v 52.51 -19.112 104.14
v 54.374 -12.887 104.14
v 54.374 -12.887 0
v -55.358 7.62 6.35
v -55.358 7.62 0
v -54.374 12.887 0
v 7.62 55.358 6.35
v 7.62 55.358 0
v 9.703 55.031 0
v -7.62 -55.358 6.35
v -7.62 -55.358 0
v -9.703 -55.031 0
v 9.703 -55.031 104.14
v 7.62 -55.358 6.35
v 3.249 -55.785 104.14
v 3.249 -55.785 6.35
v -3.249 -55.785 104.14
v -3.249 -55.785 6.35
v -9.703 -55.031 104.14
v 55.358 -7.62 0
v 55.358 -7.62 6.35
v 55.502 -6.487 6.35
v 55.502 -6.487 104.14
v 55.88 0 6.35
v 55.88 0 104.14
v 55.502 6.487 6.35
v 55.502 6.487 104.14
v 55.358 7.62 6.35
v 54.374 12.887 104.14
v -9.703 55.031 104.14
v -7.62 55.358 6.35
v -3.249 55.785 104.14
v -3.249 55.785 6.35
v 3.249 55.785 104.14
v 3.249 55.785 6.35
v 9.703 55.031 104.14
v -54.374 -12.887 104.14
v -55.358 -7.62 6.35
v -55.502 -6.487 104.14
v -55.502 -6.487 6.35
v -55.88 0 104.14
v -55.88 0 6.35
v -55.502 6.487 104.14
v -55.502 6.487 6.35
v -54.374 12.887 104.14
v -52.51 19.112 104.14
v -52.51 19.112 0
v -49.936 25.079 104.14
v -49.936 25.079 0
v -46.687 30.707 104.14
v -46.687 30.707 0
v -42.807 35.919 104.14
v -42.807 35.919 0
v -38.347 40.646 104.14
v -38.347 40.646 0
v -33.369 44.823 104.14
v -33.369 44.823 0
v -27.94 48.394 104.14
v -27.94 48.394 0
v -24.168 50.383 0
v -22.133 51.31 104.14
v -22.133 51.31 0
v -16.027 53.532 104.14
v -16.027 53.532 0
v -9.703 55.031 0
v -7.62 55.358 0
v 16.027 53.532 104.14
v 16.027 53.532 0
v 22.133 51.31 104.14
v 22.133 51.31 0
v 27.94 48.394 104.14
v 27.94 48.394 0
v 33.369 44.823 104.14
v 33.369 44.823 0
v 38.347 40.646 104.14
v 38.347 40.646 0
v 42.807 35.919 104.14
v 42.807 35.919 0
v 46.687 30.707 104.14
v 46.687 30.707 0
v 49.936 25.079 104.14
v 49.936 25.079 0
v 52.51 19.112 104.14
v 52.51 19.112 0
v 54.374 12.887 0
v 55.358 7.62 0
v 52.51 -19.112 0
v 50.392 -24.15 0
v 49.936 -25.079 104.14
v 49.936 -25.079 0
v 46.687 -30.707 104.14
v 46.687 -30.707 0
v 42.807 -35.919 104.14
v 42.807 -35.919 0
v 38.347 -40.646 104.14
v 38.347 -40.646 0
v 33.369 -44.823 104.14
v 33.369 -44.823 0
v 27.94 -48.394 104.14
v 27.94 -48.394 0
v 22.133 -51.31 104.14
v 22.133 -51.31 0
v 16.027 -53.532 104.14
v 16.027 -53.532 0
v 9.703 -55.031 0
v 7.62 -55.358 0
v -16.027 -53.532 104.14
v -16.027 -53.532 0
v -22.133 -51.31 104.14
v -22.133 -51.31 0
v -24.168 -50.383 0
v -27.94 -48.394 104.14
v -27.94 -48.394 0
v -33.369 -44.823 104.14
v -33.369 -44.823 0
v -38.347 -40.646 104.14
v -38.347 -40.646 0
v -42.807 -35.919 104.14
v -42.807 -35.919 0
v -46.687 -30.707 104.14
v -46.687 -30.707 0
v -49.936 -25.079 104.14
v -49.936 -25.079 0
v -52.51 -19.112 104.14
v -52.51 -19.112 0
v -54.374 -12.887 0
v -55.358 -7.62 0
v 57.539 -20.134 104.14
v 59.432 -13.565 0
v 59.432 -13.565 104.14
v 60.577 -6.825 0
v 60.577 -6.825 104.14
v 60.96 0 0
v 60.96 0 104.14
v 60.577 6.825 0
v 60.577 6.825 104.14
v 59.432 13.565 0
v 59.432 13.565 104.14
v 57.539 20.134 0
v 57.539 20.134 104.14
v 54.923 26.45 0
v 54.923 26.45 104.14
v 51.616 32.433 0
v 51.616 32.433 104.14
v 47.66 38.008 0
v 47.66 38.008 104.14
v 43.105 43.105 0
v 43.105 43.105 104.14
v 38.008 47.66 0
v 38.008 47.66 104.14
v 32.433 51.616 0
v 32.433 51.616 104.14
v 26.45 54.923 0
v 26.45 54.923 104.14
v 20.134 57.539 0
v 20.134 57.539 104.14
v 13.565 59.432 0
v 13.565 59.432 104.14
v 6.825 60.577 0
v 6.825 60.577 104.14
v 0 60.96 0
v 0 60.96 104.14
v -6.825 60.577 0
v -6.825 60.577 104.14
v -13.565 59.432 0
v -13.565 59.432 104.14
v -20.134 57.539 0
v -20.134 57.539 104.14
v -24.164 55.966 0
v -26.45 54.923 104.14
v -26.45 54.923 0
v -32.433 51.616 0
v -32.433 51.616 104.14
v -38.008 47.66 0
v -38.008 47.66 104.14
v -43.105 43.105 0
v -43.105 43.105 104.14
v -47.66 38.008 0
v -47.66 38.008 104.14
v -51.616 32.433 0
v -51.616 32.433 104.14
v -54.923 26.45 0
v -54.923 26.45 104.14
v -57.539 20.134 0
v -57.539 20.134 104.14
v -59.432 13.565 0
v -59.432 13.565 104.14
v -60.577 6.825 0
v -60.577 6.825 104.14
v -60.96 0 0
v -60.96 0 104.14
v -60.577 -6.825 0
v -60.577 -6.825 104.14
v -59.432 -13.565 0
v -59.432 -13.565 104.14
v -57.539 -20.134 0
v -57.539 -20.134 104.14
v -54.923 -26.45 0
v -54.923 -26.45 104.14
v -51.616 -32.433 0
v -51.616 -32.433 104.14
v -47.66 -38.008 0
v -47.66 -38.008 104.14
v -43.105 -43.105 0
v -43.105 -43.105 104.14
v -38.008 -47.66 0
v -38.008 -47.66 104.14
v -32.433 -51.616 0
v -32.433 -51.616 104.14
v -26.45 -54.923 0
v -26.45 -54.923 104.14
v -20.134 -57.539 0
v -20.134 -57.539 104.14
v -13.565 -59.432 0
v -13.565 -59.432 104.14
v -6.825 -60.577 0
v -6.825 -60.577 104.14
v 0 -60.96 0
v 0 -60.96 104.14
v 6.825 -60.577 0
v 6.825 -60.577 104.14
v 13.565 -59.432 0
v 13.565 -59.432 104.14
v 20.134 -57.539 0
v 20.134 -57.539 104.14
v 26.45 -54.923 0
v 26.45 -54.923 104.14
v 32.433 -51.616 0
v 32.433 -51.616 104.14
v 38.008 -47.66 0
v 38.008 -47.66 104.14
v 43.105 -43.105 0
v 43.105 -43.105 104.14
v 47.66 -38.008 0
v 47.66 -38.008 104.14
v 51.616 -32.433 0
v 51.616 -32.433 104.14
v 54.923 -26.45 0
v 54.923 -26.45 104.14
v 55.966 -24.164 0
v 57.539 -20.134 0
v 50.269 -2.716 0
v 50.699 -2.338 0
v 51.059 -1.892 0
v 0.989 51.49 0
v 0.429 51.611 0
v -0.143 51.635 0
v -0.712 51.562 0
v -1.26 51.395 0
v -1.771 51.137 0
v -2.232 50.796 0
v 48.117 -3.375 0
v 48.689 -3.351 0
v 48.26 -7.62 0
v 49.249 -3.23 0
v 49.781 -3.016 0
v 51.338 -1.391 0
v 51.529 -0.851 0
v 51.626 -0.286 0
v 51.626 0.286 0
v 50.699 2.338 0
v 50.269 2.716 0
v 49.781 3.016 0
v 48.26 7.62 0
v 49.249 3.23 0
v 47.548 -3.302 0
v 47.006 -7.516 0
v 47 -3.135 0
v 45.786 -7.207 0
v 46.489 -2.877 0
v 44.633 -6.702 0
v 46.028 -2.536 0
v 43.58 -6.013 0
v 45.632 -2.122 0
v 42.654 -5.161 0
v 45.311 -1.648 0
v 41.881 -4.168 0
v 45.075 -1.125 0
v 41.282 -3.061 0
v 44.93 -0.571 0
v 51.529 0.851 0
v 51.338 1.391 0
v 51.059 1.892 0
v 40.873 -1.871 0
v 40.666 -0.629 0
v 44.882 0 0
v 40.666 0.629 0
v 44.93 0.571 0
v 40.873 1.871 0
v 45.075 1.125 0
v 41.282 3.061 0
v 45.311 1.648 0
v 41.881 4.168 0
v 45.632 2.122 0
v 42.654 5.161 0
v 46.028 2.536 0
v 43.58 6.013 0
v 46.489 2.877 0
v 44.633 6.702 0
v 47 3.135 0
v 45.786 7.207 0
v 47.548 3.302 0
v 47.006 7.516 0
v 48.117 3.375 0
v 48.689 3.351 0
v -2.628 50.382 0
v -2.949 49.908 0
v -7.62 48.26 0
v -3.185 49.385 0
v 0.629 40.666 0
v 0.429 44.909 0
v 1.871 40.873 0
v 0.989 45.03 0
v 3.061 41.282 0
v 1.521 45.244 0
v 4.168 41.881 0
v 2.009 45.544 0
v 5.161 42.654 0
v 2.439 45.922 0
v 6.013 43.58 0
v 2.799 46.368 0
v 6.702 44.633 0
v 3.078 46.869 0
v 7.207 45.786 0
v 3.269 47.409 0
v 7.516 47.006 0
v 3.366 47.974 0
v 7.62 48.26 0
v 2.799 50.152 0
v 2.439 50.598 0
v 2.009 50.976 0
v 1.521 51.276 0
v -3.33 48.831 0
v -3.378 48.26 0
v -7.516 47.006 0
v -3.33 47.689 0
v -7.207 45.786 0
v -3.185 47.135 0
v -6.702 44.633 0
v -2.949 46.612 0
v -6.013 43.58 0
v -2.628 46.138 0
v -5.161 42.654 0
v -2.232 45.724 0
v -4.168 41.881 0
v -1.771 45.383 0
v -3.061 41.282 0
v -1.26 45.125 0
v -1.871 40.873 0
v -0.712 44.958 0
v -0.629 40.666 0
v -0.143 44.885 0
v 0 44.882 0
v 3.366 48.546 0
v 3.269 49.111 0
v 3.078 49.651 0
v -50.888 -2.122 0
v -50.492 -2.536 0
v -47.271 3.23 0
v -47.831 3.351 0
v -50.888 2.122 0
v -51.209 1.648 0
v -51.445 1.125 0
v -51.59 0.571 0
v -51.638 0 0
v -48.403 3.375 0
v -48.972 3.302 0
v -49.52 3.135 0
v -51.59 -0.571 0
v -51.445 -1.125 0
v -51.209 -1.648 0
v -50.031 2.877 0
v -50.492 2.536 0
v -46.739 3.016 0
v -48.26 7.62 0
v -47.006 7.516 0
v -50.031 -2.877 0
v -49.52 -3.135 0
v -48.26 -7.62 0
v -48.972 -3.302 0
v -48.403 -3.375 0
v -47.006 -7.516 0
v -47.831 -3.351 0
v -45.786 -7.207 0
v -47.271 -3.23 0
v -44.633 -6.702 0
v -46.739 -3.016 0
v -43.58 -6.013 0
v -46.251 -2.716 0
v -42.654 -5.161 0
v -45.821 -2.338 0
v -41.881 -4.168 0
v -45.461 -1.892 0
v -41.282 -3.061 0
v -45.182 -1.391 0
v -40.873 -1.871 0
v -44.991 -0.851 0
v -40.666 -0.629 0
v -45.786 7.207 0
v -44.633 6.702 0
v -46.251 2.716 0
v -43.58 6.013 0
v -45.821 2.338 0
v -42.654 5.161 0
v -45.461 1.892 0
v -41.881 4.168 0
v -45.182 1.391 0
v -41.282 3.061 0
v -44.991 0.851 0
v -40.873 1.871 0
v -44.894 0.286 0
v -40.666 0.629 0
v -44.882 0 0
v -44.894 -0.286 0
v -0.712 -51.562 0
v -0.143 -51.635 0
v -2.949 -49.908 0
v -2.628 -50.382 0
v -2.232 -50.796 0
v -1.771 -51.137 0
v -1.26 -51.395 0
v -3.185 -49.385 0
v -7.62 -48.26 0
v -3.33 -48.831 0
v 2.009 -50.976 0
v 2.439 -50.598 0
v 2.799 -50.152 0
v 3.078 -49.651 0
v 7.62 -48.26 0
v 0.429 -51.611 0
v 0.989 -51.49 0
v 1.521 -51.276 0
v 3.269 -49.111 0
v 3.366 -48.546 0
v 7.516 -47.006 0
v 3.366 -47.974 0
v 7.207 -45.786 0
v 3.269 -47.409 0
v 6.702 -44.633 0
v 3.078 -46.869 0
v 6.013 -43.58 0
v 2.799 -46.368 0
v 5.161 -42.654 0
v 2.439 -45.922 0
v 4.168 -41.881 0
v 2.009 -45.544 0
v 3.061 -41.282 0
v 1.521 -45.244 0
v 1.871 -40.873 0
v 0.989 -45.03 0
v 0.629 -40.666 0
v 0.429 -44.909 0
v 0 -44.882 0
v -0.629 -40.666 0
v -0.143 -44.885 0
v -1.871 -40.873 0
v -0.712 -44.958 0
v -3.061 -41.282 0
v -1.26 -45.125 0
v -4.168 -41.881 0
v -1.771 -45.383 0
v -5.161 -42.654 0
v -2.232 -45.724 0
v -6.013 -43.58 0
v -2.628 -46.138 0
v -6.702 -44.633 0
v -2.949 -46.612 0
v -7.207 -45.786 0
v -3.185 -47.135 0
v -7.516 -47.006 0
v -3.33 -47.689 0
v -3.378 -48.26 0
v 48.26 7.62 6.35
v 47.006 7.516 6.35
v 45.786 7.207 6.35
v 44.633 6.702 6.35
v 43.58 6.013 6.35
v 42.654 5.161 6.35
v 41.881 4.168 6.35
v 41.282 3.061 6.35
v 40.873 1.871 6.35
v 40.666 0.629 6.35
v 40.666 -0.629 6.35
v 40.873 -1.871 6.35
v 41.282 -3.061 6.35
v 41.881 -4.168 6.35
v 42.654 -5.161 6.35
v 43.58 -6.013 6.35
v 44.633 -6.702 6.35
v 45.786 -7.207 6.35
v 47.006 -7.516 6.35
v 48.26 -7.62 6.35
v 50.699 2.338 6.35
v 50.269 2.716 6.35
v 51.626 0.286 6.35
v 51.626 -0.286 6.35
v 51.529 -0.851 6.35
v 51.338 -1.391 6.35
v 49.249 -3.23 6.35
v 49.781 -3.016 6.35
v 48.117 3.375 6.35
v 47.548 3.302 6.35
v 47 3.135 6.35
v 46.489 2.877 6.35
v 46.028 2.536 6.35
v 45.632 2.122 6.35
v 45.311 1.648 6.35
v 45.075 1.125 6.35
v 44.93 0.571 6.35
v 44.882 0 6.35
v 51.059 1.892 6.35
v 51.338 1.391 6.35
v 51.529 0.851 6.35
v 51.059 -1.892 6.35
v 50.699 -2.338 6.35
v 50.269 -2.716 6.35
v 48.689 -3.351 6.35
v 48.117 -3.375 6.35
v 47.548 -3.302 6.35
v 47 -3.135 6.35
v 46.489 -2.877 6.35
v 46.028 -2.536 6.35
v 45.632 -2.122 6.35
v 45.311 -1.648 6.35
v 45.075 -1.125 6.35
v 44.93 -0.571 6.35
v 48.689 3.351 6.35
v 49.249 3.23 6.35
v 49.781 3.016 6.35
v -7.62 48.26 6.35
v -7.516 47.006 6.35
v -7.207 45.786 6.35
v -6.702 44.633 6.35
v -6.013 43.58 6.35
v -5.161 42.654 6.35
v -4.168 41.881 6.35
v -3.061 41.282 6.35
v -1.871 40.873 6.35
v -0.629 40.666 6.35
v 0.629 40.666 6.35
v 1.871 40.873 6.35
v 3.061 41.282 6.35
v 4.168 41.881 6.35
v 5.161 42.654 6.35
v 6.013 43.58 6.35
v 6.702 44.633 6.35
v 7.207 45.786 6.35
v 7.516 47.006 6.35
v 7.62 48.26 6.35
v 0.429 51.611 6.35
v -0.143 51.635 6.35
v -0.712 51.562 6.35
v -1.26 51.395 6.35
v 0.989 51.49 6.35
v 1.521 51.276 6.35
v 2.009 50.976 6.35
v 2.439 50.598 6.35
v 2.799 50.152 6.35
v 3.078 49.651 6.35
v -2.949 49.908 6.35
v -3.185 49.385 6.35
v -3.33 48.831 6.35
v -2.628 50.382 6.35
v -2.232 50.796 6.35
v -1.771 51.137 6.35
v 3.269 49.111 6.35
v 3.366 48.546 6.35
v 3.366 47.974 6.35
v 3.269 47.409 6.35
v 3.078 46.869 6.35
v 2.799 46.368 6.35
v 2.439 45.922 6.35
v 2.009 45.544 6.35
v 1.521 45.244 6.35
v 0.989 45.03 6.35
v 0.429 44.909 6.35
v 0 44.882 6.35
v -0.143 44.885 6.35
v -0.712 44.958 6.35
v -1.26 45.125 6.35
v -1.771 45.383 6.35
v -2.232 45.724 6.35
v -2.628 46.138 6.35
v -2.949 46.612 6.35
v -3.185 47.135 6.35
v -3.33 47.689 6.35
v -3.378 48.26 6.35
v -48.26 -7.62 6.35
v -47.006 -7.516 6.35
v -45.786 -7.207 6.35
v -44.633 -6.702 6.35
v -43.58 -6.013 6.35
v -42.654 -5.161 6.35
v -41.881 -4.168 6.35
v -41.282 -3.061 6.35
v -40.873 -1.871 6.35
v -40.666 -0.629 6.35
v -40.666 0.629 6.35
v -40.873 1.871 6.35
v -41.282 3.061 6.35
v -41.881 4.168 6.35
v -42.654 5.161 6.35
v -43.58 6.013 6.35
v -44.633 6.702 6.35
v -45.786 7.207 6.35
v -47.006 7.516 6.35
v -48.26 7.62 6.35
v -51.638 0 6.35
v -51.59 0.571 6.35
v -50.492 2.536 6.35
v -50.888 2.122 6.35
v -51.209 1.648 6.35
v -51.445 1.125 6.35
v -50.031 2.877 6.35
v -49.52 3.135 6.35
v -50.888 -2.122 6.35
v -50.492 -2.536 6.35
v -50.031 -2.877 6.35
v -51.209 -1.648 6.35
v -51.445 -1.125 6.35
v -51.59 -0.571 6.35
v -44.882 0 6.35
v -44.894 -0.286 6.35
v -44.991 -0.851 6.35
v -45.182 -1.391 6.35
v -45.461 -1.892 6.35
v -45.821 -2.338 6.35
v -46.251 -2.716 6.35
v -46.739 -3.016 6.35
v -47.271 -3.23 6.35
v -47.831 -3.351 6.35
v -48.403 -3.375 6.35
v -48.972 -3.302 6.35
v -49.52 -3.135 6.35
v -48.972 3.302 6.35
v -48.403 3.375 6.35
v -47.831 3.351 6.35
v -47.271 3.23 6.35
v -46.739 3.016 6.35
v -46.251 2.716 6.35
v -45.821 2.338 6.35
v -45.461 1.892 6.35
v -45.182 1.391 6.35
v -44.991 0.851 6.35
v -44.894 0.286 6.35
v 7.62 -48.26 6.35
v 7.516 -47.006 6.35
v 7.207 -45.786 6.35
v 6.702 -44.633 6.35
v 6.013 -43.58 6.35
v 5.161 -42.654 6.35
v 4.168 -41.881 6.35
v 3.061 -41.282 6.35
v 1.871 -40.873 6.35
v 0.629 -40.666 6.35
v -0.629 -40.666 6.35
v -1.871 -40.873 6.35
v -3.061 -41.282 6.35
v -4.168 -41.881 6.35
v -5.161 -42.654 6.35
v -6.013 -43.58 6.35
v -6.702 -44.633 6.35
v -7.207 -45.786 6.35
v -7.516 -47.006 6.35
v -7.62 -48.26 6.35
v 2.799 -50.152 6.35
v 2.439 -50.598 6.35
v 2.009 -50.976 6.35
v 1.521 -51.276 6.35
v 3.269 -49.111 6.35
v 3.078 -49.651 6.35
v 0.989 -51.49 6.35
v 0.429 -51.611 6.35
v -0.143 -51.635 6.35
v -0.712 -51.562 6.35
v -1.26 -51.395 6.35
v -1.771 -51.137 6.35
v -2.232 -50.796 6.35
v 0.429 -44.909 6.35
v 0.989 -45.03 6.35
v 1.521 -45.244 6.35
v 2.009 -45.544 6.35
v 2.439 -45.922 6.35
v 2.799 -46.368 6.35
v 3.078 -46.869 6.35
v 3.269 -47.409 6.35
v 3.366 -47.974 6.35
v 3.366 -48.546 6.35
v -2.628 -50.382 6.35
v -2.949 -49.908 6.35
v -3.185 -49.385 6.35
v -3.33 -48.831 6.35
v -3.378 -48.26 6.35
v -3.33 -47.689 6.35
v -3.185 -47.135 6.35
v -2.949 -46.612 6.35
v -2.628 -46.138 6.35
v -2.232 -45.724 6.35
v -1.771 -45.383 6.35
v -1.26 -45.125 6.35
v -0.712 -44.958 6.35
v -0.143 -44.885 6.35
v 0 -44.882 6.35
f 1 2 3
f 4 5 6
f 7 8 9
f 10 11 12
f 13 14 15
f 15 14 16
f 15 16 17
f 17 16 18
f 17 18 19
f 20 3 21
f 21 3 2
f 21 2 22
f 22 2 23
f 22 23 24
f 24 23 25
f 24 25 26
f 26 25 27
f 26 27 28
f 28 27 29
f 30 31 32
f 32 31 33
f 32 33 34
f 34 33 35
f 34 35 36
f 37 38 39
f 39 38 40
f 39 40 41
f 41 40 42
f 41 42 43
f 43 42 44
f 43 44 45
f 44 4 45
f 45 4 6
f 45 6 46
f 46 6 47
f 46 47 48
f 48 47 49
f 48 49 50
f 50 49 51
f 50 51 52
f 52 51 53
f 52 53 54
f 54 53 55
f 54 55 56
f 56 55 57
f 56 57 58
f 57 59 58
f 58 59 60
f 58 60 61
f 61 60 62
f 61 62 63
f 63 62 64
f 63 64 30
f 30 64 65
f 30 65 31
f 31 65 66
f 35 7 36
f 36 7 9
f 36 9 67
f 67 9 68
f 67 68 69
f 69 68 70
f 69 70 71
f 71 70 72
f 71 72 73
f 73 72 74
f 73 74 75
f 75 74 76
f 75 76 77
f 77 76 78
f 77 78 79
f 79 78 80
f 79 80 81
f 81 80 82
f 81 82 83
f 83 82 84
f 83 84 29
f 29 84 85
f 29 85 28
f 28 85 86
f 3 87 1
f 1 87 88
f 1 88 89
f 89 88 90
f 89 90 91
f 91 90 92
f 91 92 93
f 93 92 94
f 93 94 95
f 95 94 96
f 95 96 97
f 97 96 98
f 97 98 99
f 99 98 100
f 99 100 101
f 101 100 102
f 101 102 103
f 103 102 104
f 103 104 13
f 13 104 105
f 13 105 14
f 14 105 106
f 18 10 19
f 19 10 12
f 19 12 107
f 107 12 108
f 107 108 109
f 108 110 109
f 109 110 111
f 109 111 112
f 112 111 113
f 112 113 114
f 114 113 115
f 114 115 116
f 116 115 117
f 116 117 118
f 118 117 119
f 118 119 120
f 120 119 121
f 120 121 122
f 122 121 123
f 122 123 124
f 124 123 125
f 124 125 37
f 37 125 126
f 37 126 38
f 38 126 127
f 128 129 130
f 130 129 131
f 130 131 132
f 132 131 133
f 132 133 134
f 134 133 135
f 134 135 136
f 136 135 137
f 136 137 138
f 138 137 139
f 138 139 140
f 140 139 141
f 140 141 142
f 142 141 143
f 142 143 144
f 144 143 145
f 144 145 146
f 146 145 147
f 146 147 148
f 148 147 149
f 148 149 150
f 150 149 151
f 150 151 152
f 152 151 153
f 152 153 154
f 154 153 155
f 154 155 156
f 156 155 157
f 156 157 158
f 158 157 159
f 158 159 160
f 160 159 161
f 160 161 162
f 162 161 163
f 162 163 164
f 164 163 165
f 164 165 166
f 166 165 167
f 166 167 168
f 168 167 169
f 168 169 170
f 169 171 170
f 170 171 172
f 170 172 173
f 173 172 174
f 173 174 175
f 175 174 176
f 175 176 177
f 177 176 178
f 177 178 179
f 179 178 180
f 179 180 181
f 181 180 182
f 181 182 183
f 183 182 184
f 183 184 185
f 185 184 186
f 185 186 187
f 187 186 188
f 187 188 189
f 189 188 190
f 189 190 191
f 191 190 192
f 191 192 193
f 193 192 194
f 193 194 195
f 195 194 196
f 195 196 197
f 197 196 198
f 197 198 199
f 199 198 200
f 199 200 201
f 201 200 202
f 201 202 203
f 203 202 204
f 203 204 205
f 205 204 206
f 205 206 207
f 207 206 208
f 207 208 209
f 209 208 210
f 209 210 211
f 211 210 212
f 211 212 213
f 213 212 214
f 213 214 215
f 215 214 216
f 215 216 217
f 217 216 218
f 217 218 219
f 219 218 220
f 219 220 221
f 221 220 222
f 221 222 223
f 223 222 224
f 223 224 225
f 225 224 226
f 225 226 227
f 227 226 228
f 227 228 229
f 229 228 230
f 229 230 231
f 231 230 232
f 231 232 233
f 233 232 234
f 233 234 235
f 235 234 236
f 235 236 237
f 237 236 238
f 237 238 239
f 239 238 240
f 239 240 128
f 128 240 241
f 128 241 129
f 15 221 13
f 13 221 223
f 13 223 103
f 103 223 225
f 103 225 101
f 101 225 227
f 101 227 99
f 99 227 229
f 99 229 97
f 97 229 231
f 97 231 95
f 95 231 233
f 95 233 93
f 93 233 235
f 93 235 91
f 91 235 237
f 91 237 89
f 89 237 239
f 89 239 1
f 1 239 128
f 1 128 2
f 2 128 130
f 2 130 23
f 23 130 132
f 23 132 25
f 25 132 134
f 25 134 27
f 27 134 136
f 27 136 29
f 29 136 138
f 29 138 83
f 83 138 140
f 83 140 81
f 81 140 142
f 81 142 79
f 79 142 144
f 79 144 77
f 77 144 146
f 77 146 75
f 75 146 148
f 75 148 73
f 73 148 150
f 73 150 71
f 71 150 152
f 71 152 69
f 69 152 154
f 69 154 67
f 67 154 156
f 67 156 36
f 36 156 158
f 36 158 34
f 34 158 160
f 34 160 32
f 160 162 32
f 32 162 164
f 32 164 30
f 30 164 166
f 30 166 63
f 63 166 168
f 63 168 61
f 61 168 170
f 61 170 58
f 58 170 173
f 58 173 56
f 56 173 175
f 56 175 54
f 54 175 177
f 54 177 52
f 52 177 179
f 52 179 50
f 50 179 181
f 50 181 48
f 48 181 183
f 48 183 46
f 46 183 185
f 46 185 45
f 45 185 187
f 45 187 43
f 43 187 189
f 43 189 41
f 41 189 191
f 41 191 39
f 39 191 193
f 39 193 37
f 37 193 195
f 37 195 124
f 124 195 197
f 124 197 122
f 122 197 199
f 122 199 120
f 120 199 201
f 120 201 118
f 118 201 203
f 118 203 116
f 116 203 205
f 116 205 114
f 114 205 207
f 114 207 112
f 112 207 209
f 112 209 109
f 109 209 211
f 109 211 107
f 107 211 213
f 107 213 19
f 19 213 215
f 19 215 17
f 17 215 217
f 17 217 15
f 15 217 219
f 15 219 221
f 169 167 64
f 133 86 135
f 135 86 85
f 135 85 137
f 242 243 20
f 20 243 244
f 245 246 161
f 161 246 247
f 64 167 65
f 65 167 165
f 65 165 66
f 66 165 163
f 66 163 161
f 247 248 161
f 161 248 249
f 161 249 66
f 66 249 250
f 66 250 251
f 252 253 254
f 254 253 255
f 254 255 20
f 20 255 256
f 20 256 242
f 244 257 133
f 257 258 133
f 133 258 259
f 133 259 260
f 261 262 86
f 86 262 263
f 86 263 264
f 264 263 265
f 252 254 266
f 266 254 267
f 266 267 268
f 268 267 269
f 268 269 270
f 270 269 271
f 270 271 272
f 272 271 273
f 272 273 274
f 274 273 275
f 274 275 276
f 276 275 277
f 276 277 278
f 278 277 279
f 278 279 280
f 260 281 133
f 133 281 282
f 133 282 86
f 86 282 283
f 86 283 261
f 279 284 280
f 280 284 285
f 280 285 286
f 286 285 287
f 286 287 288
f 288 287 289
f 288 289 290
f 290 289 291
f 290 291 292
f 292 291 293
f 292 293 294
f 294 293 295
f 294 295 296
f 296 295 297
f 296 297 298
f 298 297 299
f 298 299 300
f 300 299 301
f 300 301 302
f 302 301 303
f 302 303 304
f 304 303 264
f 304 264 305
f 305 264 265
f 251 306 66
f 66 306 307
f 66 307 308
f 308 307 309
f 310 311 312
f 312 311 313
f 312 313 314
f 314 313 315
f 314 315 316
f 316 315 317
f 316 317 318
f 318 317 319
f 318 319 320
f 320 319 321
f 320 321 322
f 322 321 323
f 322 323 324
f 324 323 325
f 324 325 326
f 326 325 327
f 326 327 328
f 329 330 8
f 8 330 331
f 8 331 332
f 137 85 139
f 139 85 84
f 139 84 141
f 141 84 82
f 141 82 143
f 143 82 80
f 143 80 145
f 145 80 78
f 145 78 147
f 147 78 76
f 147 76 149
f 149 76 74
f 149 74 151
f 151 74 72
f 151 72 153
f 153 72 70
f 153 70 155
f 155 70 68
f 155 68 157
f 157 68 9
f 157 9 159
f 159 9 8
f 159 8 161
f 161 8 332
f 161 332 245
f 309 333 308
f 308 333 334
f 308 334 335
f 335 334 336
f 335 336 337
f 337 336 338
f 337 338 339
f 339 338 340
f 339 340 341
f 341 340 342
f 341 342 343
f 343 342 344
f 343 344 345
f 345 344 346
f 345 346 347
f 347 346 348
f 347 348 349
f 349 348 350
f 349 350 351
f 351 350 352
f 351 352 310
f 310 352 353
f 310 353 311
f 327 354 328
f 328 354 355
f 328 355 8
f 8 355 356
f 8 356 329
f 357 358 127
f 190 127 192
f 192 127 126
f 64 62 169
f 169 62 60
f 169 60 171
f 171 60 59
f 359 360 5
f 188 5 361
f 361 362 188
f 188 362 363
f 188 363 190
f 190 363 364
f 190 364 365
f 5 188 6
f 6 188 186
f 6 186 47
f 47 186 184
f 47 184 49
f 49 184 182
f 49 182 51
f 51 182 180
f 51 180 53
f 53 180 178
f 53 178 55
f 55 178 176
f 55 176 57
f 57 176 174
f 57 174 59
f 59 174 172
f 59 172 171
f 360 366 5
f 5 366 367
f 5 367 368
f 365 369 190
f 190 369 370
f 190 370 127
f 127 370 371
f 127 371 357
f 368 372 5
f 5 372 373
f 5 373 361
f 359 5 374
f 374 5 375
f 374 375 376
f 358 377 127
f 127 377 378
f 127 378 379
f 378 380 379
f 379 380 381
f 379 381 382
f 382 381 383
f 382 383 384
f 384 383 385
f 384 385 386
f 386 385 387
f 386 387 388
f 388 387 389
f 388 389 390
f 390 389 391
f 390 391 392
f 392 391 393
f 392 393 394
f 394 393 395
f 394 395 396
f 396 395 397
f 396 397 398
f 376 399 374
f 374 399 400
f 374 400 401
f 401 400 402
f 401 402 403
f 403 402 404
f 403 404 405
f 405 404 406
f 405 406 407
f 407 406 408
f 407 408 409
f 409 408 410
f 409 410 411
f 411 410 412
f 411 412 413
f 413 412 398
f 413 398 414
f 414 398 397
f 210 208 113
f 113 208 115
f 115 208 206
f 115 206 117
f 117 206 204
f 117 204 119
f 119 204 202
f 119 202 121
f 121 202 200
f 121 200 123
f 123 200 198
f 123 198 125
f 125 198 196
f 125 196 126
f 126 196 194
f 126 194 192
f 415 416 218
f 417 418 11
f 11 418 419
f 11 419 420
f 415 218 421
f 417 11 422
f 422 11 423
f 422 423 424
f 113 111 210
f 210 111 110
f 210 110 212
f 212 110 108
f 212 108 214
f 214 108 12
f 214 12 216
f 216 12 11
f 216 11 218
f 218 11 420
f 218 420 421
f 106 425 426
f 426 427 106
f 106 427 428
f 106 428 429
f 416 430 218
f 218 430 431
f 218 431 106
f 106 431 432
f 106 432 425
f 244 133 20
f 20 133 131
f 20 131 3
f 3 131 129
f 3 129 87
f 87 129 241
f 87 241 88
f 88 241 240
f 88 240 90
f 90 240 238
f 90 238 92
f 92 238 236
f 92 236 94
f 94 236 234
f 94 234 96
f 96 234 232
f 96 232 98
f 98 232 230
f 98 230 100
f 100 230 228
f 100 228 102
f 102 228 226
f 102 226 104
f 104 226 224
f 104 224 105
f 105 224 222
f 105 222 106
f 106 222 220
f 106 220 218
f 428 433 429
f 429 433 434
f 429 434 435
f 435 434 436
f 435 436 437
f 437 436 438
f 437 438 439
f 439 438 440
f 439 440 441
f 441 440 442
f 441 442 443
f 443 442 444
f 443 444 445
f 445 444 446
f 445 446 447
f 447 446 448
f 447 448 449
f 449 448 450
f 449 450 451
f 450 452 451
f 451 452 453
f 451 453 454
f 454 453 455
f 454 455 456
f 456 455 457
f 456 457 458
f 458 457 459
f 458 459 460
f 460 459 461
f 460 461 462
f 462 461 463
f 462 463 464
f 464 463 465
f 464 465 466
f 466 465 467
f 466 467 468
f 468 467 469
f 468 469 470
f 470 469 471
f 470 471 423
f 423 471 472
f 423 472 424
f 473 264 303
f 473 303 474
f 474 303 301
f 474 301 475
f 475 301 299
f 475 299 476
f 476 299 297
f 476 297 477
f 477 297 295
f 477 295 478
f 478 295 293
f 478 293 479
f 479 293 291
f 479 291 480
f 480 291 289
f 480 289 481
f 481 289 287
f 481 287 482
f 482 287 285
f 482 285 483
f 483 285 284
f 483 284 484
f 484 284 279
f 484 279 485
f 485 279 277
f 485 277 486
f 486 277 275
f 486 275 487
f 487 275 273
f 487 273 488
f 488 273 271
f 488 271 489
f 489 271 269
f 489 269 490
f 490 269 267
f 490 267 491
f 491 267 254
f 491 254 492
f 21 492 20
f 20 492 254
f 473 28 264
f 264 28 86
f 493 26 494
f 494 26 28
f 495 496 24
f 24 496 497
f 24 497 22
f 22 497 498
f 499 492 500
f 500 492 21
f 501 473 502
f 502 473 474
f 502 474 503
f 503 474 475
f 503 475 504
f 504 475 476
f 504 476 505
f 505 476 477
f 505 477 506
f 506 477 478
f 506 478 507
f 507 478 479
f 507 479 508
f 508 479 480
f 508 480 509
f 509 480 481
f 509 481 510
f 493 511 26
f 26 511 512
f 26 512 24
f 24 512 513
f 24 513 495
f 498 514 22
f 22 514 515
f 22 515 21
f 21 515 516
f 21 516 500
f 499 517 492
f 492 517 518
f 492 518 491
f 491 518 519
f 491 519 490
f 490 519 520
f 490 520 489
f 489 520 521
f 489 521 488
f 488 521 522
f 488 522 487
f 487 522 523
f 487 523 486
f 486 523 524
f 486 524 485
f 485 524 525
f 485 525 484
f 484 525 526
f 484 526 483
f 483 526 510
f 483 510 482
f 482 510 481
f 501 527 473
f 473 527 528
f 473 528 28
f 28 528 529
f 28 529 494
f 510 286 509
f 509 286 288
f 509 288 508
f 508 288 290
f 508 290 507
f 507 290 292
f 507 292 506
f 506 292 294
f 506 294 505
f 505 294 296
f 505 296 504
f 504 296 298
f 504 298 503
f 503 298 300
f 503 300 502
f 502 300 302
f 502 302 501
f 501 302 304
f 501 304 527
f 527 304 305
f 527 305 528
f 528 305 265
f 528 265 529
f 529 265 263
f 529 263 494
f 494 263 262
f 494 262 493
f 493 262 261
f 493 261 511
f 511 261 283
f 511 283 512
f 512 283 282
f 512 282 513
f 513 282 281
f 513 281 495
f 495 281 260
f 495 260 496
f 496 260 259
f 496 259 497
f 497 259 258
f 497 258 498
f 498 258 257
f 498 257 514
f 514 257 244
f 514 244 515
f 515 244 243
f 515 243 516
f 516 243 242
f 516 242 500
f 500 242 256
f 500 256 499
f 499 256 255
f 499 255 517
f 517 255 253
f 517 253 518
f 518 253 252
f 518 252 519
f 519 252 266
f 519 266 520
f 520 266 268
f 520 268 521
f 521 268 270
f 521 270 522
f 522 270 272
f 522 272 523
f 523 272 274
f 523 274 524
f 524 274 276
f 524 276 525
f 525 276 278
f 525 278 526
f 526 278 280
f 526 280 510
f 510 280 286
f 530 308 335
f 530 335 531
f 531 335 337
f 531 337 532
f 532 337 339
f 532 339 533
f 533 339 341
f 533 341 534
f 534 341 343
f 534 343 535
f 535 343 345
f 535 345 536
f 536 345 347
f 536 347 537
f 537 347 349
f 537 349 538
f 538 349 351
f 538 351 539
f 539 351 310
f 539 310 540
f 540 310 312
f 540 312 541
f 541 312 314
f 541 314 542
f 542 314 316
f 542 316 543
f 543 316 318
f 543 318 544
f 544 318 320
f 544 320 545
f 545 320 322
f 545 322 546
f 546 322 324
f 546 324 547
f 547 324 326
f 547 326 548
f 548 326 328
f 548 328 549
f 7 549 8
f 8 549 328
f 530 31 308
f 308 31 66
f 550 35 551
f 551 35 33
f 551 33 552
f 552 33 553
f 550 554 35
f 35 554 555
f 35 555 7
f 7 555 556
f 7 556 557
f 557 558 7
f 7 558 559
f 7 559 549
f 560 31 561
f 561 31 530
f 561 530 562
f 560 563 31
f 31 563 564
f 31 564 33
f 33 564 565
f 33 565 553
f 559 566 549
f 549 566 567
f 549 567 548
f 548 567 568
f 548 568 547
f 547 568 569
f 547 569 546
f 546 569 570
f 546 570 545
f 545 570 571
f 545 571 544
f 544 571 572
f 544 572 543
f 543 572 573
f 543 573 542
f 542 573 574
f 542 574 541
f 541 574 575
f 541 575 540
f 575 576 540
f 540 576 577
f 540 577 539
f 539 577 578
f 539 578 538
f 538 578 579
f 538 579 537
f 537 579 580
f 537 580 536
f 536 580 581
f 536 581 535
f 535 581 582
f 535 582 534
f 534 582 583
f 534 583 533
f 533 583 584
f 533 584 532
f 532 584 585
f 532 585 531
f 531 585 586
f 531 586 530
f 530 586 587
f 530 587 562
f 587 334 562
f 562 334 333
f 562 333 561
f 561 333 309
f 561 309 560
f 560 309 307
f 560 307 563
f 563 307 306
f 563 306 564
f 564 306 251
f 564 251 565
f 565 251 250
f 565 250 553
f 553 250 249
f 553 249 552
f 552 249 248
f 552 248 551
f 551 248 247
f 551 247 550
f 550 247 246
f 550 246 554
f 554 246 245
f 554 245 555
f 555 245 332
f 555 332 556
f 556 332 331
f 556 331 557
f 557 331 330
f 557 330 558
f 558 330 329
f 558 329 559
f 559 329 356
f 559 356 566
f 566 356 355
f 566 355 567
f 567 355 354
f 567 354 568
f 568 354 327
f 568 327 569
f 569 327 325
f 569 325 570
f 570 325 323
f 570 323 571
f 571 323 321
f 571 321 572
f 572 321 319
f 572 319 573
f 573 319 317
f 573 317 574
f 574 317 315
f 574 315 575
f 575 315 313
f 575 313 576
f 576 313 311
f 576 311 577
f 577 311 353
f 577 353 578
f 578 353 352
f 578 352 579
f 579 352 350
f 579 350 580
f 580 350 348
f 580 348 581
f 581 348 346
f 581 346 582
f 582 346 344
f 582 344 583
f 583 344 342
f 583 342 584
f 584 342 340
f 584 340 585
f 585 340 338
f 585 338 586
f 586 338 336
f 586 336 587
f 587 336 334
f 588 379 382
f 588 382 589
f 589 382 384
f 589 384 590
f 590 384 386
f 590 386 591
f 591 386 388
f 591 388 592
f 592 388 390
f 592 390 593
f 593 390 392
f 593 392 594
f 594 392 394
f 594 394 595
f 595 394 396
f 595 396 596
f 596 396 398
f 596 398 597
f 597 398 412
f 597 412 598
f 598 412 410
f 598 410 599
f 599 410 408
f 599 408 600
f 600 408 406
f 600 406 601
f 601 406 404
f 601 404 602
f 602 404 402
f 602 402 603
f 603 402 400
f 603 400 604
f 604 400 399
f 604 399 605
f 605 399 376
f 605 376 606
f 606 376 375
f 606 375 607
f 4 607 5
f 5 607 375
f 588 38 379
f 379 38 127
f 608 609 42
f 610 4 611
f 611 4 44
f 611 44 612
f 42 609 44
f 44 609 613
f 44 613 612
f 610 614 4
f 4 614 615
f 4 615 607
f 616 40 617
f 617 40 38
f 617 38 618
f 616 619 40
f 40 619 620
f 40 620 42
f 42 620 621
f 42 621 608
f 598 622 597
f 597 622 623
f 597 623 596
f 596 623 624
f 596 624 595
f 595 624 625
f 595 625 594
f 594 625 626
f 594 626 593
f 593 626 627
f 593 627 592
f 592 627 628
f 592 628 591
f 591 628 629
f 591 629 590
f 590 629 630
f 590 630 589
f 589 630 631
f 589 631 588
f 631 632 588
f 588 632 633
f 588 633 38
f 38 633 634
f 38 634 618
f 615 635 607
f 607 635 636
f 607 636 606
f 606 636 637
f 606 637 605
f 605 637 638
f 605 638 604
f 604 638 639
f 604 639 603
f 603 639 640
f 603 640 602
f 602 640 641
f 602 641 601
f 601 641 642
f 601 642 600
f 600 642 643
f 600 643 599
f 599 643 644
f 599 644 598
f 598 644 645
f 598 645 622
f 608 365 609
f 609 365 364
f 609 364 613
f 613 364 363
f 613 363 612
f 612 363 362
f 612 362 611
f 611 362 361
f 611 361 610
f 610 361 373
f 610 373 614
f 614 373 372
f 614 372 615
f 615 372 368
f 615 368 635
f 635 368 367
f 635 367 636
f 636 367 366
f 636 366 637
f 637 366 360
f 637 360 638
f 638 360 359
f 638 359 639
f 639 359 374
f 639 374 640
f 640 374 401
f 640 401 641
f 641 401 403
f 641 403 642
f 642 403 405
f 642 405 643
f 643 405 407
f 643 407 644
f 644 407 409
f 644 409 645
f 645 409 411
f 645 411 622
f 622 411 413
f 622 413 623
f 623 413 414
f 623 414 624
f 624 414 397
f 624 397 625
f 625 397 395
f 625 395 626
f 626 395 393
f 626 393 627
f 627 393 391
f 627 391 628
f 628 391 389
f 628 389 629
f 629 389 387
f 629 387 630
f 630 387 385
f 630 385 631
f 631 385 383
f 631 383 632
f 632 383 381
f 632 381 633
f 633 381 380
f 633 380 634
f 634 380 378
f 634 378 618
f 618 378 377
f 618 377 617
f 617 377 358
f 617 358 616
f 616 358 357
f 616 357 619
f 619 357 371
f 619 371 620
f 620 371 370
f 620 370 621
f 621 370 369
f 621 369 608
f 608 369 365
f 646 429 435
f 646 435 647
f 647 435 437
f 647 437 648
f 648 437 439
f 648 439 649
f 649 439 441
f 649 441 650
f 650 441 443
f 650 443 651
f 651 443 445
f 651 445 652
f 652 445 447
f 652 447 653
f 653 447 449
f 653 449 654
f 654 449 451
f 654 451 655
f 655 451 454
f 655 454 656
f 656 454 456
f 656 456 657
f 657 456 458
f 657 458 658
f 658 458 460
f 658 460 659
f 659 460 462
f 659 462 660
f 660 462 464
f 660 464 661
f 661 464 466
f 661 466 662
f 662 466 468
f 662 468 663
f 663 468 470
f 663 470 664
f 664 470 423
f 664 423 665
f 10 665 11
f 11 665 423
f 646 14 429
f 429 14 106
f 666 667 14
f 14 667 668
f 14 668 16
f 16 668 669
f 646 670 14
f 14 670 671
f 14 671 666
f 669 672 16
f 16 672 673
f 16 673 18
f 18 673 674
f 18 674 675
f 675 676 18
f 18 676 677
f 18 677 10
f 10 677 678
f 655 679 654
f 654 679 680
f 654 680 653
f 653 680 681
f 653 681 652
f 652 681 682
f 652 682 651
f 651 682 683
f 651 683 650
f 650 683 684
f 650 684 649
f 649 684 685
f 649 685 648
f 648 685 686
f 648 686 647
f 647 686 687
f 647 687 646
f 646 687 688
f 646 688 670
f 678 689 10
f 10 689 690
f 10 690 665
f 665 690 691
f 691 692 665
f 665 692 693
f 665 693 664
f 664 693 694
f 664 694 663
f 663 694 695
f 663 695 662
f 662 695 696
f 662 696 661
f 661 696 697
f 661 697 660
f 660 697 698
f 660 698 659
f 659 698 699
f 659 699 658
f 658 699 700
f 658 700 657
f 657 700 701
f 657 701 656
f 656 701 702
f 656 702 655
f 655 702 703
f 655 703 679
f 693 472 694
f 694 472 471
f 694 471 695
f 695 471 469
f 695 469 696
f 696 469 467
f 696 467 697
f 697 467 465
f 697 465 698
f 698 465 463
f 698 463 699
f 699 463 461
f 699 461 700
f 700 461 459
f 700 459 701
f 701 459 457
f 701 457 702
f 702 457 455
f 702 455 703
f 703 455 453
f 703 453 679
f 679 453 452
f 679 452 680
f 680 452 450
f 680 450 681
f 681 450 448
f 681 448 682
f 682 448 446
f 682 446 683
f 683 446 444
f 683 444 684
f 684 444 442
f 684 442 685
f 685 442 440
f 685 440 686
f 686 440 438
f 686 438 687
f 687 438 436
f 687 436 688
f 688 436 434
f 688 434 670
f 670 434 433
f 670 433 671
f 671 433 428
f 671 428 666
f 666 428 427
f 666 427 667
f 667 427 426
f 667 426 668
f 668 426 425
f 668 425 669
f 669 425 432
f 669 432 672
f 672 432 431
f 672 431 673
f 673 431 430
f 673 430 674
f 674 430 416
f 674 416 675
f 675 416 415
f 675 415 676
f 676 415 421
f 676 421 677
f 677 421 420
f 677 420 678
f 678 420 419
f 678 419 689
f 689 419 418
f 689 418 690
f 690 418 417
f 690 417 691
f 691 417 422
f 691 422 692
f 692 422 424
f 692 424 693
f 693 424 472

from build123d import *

# Parameters (mm, degrees)
SKETCH1_R           = 60.96
SKETCH1_R_2         = 55.88
BOSS_EXTRUDE1_DEPTH = 104.14
SKETCH2_R           = 3.3782
BOSS_EXTRUDE2_DEPTH = 6.35
CIRPATTERN1_COUNT   = 4


with BuildPart() as part:
    # Sketch1 → Boss-Extrude1 (new body)
    with BuildSketch(Plane.XY):
        Circle(SKETCH1_R)
        Circle(SKETCH1_R_2, mode=Mode.SUBTRACT)
    extrude(amount=BOSS_EXTRUDE1_DEPTH)

    # Sketch2 → Boss-Extrude2 (add)
    with BuildSketch(Plane(origin=(0, 0, 0), x_dir=(-1, 0, 0), z_dir=(0, 0, -1))):
        with BuildLine():
            Line((-48.26, 7.62), (-55.358016583, 7.62))
            ThreePointArc((-55.358016583, 7.62), (-55.88, 0), (-55.358016583, -7.62))
            Line((-55.358016583, -7.62), (-48.26, -7.62))
            ThreePointArc((-48.26, -7.62), (-40.64, 0), (-48.26, 7.62))
        make_face()
        with Locations((-48.26, 0)):
            Circle(SKETCH2_R, mode=Mode.SUBTRACT)
    boss_extrude2 = extrude(amount=-BOSS_EXTRUDE2_DEPTH)

    # CirPattern1: Boss-Extrude2 ×4 about axis
    cirpattern1_axis = Axis((0, 0, 0), (0, 0, 1))
    for i in range(1, CIRPATTERN1_COUNT):
        add(boss_extrude2.rotate(cirpattern1_axis, i * 360 / CIRPATTERN1_COUNT))


solid = part.part
